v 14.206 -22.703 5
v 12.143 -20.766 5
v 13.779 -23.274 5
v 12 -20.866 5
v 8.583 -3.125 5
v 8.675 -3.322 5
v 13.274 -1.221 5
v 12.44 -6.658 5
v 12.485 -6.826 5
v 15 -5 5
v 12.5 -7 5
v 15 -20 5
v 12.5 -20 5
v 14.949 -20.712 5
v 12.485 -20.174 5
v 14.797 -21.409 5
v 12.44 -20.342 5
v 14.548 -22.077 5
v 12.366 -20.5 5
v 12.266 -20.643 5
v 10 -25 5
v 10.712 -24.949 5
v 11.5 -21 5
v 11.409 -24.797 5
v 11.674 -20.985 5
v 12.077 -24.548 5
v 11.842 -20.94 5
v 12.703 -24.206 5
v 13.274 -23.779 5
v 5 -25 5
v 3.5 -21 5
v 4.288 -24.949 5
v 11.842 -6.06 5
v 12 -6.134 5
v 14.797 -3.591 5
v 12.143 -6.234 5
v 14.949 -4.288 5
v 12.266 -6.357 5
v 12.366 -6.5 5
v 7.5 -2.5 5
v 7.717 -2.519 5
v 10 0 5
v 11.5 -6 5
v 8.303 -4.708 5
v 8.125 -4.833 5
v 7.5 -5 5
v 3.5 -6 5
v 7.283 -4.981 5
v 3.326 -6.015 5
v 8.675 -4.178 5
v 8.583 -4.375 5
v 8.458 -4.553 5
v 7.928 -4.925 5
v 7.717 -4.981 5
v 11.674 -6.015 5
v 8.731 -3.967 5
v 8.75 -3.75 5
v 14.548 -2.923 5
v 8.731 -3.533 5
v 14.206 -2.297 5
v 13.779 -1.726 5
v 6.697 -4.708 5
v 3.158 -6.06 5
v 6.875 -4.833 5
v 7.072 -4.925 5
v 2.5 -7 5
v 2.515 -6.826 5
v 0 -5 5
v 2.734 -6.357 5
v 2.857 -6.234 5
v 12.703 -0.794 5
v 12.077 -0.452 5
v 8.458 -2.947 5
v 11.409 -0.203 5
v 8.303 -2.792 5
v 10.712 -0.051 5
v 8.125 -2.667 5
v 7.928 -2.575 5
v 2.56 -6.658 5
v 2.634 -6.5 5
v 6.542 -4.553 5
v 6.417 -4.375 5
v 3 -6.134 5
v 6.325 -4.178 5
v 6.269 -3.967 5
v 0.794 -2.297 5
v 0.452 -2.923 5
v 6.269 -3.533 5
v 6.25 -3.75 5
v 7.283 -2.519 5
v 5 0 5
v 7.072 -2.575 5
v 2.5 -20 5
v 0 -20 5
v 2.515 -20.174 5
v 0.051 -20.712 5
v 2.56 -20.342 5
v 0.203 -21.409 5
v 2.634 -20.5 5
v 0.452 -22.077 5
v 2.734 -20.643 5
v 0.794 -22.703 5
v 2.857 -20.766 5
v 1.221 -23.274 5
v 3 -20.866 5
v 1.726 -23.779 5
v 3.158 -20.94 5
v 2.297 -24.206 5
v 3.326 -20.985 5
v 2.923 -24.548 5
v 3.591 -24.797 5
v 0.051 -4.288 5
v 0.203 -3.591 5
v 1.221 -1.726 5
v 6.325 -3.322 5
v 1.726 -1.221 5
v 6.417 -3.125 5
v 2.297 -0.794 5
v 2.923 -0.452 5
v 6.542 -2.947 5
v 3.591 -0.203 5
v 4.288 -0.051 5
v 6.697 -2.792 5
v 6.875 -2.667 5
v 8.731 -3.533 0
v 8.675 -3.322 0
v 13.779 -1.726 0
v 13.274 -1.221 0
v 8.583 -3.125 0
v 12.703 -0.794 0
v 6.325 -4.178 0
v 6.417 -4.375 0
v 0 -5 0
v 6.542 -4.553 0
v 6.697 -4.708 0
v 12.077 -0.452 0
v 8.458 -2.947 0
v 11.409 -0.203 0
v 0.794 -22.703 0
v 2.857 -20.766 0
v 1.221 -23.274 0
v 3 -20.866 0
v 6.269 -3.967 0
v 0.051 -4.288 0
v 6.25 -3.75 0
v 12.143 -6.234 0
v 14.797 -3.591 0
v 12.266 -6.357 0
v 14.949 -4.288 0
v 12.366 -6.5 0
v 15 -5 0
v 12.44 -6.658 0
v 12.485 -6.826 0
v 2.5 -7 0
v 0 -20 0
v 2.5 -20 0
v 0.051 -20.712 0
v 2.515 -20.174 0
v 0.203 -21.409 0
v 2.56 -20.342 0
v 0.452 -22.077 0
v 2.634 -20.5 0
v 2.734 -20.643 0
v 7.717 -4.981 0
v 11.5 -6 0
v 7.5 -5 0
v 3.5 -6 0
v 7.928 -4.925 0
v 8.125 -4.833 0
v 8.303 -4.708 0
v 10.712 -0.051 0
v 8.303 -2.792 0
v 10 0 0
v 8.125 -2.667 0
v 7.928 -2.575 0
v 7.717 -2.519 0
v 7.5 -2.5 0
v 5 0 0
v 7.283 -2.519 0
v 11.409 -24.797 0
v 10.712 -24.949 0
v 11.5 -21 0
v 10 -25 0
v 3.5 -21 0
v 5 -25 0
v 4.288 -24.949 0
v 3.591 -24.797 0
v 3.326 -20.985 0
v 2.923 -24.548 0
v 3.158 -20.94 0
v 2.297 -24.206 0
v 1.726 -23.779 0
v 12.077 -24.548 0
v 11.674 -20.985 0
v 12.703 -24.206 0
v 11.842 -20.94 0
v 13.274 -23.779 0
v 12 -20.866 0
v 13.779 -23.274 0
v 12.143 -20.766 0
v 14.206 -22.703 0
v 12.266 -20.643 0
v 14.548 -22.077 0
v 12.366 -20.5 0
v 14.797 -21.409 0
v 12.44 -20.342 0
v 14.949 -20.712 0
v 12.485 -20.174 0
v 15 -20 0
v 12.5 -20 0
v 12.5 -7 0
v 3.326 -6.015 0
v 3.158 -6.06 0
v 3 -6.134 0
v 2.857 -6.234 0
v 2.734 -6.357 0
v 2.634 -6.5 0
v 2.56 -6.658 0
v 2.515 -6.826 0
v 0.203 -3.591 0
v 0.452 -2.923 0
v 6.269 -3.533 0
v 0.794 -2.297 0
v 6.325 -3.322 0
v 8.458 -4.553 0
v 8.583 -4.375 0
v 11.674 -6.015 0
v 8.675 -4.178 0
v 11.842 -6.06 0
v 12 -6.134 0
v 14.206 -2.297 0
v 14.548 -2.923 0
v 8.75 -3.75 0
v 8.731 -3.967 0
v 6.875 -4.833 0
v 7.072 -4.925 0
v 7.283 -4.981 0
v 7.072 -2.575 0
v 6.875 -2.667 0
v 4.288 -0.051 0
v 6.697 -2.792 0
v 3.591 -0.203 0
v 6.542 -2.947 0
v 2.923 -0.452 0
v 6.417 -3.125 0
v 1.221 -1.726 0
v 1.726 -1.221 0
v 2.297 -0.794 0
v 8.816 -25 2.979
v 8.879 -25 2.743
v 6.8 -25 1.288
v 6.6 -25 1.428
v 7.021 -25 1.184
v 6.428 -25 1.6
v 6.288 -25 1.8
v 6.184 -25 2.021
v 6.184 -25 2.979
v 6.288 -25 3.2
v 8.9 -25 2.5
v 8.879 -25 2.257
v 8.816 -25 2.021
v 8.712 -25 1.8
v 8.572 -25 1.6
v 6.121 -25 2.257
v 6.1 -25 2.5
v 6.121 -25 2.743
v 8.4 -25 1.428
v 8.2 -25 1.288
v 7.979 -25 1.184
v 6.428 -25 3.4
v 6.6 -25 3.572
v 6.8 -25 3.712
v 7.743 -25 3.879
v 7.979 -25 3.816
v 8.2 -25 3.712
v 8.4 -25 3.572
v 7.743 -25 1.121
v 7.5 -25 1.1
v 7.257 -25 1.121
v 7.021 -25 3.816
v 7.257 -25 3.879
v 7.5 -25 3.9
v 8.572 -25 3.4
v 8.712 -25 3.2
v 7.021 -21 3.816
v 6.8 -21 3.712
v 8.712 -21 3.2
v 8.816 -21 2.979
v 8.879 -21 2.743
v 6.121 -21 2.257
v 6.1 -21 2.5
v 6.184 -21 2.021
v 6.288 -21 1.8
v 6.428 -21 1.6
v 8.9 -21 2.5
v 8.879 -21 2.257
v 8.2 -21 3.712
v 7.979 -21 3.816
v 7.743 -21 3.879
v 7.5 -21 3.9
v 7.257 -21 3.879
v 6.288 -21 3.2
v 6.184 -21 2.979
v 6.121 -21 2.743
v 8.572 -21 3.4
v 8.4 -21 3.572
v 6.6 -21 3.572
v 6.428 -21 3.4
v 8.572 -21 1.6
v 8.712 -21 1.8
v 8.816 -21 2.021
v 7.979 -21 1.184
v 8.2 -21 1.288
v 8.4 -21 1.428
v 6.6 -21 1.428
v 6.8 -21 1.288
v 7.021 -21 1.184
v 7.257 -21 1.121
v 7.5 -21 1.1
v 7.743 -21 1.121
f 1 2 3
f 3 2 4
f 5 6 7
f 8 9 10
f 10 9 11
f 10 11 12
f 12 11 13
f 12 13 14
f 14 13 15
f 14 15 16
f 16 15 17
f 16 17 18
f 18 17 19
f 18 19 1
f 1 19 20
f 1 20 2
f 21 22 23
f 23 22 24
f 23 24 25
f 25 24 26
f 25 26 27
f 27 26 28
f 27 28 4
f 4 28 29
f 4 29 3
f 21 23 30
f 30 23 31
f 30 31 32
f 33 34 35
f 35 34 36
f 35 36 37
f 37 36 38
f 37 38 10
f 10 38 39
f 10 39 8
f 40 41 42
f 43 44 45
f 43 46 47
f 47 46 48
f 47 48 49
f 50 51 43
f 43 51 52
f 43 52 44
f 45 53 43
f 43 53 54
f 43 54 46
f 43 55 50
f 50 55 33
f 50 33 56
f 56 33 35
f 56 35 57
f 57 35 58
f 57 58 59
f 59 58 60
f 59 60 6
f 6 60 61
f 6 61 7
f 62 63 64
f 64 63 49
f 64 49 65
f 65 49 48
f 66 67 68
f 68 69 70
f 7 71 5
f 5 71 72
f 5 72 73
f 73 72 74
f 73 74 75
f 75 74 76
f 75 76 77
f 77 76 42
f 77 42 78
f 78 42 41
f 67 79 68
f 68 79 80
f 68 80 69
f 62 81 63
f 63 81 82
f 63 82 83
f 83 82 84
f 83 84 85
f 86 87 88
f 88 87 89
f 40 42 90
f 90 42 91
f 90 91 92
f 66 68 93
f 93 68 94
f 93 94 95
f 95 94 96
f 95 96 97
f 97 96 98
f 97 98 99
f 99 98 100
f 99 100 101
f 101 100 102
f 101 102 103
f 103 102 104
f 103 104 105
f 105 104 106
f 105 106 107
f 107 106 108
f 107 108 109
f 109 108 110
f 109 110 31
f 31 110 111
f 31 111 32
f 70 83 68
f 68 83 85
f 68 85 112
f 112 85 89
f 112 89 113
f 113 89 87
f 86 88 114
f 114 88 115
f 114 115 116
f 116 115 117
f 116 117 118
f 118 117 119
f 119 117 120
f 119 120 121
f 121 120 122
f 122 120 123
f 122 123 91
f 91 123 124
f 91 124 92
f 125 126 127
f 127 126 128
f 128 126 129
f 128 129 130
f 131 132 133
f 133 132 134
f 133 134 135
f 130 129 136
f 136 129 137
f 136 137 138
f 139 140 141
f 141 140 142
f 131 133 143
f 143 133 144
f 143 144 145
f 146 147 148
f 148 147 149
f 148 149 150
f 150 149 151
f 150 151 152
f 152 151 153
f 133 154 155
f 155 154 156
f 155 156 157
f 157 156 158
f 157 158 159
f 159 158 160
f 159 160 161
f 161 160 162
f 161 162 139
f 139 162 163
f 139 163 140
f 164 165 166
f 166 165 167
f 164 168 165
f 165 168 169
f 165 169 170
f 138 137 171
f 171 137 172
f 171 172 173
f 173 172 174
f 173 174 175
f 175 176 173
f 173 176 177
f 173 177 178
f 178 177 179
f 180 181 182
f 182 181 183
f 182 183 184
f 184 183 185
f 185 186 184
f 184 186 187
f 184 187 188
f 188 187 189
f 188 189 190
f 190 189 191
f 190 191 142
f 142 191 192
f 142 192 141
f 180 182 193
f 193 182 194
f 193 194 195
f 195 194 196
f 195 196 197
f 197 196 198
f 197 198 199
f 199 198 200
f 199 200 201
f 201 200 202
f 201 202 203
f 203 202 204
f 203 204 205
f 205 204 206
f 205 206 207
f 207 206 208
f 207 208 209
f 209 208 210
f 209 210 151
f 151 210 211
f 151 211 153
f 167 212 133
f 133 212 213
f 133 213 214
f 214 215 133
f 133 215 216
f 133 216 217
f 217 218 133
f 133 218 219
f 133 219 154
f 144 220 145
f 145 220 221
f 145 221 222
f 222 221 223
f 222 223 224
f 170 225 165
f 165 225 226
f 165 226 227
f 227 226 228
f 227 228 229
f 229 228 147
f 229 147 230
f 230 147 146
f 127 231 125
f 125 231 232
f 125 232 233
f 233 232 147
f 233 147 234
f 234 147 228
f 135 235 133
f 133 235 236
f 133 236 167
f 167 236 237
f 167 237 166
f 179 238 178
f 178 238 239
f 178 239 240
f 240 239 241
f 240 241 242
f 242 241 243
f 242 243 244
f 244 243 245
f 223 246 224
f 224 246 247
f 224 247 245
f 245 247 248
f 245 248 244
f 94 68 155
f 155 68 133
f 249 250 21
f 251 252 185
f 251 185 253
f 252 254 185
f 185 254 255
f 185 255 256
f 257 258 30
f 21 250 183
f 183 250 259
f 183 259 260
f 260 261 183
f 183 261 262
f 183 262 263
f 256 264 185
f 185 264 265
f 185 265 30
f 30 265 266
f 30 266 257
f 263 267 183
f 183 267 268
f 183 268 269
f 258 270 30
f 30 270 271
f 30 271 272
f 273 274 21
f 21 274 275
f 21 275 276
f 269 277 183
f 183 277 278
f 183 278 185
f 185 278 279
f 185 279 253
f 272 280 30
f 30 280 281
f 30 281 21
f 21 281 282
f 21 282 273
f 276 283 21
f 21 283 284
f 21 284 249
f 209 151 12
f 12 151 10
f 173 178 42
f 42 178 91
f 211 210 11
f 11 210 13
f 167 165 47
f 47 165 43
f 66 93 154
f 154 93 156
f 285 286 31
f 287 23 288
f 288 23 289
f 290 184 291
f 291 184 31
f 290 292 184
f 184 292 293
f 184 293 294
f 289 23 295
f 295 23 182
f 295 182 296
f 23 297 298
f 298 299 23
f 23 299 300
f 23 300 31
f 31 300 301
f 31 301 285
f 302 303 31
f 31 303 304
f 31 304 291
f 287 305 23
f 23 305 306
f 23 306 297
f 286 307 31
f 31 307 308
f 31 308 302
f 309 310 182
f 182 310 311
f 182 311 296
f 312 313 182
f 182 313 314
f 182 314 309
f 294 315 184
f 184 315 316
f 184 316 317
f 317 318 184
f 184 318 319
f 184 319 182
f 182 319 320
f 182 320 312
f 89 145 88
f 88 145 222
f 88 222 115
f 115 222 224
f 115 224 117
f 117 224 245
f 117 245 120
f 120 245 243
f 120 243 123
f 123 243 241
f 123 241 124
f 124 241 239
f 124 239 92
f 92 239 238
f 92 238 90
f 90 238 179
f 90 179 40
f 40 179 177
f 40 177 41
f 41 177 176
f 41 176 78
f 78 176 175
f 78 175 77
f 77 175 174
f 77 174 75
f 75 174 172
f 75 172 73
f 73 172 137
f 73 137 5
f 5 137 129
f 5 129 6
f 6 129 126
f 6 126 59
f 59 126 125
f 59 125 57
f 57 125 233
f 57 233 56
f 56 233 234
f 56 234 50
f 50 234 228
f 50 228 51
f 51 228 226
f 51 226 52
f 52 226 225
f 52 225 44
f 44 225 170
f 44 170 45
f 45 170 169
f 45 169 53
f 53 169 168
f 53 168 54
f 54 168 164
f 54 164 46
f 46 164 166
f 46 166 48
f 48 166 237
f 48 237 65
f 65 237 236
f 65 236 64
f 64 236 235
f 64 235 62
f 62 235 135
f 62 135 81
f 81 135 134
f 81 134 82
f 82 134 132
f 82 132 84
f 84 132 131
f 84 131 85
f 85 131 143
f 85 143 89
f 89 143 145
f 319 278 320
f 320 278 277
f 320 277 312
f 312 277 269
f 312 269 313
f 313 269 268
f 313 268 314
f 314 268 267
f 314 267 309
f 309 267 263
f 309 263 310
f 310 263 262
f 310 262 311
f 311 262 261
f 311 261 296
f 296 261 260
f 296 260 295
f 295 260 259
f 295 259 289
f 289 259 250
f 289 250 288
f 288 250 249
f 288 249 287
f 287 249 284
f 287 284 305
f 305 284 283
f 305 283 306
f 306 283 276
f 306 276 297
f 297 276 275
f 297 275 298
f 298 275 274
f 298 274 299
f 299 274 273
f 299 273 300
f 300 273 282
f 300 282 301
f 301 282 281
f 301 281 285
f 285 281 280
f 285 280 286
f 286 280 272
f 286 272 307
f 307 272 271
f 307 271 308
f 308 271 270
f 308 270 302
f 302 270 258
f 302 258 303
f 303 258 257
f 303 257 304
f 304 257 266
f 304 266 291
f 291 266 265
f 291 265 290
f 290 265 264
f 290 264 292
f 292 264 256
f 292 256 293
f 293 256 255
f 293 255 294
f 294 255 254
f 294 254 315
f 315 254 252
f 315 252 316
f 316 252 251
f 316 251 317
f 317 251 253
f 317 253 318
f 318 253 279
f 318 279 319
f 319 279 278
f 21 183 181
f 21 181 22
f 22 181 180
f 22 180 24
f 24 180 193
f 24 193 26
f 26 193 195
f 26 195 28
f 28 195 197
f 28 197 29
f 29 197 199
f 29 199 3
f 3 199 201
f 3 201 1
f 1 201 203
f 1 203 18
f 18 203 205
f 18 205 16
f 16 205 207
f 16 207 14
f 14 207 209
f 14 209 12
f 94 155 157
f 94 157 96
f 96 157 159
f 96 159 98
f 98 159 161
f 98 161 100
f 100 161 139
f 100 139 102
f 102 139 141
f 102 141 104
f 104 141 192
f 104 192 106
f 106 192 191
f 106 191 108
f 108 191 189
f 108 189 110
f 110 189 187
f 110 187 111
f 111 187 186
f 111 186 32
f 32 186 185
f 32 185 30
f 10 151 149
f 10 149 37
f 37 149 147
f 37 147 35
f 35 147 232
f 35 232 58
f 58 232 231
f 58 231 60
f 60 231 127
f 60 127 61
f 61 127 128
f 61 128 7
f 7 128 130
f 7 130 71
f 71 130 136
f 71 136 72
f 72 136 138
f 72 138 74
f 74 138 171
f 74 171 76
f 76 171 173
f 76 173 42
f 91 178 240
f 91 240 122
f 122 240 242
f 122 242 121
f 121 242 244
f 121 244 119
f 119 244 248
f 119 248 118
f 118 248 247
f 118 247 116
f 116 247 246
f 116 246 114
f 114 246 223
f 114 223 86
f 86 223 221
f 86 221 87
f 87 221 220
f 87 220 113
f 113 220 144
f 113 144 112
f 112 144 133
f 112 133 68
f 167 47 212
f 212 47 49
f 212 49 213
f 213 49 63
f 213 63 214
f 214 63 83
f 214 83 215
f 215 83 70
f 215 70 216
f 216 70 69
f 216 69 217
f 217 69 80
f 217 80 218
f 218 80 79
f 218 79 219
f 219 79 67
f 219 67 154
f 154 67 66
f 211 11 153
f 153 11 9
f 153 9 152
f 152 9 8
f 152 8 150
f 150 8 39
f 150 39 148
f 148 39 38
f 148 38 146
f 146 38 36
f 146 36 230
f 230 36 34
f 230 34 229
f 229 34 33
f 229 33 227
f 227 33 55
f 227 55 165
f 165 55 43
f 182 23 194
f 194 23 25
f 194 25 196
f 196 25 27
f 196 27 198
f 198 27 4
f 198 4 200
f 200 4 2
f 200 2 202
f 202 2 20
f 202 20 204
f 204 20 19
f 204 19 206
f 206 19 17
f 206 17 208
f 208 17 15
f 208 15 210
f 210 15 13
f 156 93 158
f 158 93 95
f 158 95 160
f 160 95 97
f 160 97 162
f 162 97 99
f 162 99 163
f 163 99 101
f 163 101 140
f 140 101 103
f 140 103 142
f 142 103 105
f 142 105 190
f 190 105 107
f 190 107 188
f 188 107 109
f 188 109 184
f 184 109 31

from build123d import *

# Parameters (mm, degrees)
SKETCH1_W           = 15
SKETCH1_H           = 25
SKETCH1_R           = 1.25
SKETCH1_W_2         = 10
SKETCH1_H_2         = 15
BOSS_EXTRUDE1_DEPTH = 5
SKETCH2_R           = 1.4
CUT_EXTRUDE1_DEPTH  = 4
FILLET1_R           = 5
FILLET2_R           = 1


with BuildPart() as part:
    # Sketch1 → Boss-Extrude1 (new body)
    with BuildSketch(Plane.XY):
        with Locations((7.5, -12.5)):
            Rectangle(SKETCH1_W, SKETCH1_H)
        with Locations((7.5, -3.75)):
            Circle(SKETCH1_R, mode=Mode.SUBTRACT)
        with Locations((7.5, -13.5)):
            Rectangle(SKETCH1_W_2, SKETCH1_H_2, mode=Mode.SUBTRACT)
    extrude(amount=BOSS_EXTRUDE1_DEPTH)

    # Sketch2 → Cut-Extrude1 (cut)
    with BuildSketch(Plane.XZ.offset(25)):
        with Locations(Location((7.5, 2.5, 0), (0, 0, 270))):
            Circle(SKETCH2_R)
    extrude(amount=-CUT_EXTRUDE1_DEPTH, mode=Mode.SUBTRACT)

    # Fillet1
    fillet1_edges = [part.edges().sort_by_distance(p)[0] for p in [
        (0, 0, 2.5),
        (15, 0, 2.5),
        (15, -25, 2.5),
        (0, -25, 2.5),
    ]]
    fillet(fillet1_edges, radius=FILLET1_R)

    # Fillet2
    fillet2_edges = [part.edges().sort_by_distance(p)[0] for p in [
        (12.5, -21, 2.5),
        (12.5, -6, 2.5),
        (2.5, -6, 2.5),
        (2.5, -21, 2.5),
    ]]
    fillet(fillet2_edges, radius=FILLET2_R)


solid = part.part
